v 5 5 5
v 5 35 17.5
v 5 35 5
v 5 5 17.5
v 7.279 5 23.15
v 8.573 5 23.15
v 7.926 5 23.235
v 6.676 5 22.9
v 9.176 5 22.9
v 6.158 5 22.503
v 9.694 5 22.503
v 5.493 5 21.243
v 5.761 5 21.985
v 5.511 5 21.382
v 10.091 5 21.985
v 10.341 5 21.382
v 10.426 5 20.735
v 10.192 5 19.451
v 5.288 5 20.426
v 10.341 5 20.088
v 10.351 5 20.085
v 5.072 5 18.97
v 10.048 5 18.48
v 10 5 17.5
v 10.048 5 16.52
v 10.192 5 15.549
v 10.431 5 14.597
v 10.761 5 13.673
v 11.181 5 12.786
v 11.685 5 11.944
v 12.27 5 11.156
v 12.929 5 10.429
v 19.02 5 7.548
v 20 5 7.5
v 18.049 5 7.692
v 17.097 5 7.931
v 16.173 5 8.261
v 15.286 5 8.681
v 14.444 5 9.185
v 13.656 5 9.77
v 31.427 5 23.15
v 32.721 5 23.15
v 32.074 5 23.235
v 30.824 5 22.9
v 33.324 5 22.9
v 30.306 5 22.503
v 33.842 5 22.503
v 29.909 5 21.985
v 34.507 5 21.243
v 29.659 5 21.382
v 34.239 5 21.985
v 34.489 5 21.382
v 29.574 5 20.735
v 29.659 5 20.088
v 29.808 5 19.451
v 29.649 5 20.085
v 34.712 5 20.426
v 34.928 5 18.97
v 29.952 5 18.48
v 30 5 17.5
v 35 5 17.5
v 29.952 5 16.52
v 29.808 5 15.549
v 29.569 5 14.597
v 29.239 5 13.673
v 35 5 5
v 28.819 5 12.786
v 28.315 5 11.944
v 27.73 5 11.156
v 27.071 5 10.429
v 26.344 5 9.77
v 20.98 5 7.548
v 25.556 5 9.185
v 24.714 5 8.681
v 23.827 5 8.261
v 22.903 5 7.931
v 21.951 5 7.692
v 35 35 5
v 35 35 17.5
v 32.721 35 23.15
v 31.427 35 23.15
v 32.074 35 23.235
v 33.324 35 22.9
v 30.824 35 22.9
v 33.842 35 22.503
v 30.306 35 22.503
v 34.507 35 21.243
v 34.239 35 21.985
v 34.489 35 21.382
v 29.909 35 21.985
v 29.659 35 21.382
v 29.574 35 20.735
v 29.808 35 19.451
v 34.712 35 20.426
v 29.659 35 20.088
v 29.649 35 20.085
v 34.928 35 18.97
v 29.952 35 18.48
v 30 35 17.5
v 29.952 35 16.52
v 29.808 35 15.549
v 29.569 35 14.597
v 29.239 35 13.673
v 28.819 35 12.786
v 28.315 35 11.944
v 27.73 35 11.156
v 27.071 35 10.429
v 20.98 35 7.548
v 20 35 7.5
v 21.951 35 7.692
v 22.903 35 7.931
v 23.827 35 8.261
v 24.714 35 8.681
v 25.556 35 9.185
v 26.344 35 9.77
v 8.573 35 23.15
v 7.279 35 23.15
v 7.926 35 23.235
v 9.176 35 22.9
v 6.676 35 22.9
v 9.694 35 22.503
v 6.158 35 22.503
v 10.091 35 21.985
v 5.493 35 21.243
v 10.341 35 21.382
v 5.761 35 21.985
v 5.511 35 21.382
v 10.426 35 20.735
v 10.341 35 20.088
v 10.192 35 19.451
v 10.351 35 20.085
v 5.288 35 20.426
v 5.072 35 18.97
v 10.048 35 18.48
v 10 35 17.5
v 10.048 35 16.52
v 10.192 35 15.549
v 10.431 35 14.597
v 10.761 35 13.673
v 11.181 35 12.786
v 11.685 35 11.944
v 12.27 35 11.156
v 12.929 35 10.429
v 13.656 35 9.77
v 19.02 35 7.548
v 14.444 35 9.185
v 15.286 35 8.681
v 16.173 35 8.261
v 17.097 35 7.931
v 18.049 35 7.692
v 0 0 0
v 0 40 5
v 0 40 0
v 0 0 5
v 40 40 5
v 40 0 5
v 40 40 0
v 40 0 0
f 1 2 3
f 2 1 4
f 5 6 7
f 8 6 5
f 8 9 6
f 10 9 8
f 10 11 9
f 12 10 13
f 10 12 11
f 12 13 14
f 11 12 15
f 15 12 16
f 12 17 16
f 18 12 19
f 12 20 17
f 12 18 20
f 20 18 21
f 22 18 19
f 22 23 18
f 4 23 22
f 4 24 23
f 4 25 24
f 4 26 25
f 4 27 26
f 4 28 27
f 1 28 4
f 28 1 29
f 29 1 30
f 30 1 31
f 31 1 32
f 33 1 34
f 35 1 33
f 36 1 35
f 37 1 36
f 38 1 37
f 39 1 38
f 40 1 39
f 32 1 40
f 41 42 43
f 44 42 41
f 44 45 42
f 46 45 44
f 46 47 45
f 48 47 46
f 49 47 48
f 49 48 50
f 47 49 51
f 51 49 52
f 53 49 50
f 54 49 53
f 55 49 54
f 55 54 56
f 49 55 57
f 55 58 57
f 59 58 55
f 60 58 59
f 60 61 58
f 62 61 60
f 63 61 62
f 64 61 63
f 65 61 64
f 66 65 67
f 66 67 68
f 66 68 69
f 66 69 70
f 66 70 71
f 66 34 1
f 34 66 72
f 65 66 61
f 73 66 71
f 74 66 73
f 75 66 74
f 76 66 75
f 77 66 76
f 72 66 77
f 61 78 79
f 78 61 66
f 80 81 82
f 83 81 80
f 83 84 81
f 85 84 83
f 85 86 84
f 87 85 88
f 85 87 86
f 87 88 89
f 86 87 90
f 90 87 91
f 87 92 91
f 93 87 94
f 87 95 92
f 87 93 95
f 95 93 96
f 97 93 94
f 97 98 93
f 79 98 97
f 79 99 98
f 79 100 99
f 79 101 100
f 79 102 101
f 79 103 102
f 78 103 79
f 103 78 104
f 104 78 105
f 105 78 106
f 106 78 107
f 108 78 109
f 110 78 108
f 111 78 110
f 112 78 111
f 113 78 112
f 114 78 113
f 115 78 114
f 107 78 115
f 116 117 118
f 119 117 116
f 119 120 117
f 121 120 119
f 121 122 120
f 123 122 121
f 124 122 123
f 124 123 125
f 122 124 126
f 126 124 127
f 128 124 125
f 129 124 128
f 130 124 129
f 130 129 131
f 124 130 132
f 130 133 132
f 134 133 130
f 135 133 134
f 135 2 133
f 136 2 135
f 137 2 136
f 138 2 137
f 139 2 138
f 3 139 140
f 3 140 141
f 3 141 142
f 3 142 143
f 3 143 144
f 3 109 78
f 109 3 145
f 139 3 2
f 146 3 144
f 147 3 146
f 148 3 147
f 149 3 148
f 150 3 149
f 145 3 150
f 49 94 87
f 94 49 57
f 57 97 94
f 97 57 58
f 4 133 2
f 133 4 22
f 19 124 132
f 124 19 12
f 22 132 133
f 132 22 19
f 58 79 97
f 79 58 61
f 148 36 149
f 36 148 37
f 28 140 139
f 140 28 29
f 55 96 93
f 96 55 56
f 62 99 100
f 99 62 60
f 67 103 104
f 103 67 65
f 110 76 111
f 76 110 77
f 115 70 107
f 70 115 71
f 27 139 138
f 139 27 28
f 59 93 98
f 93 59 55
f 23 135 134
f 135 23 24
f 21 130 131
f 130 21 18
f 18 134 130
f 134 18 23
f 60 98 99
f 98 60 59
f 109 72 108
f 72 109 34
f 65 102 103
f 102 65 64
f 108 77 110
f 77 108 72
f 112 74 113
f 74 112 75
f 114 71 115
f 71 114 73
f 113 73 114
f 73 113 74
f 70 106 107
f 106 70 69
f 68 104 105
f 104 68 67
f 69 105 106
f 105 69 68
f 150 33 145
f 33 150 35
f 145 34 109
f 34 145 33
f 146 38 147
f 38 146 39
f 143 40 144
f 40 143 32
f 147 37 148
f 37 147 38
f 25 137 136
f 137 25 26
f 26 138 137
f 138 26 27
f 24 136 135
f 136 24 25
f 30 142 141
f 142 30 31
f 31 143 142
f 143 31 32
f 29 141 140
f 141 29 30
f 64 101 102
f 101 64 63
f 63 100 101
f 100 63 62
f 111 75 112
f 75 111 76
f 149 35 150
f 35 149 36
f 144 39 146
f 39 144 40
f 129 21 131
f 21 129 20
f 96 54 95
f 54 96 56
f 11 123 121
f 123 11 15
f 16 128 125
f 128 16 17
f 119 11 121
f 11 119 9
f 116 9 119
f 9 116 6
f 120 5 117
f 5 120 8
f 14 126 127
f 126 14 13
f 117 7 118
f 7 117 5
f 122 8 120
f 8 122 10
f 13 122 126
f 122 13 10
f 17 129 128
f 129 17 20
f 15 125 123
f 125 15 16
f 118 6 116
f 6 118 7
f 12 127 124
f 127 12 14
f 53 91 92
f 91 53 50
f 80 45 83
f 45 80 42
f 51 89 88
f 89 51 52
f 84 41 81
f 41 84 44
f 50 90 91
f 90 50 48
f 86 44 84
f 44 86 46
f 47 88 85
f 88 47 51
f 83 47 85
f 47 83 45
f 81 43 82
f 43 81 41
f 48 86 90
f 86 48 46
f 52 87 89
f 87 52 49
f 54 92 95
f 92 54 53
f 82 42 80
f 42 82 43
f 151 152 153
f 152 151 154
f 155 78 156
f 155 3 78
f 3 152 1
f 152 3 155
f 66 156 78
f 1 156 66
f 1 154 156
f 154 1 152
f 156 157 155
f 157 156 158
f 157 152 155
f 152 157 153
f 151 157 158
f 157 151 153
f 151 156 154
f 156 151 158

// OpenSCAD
// Generated by SolidPython 1.1.3 on 2025-06-22 16:38:17
$fn = 64;


union() {
	cube(size = [40, 40, 5]);
	translate(v = [0, 0, 17.5000000000]) {
		translate(v = [20.0000000000, 35.0000000000, 0]) {
			rotate(a = [90, 0, 0]) {
				union() {
					difference() {
						union() {
							translate(v = [-15, -15, 0]) {
								cube(size = [30, 15.0000000000, 30]);
							}
							cylinder(h = 30, r = 15.0000000000);
						}
						translate(v = [0, 0, -0.1000000000]) {
							cylinder(h = 30.2000000000, r = 10);
						}
						translate(v = [0, 0, -0.1000000000]) {
							linear_extrude(height = 30.2000000000) {
								polygon(points = [[0, 0], [96.59258262890683, 25.881904510252074], [-96.59258262890683, 25.881904510252102], [0, 0]]);
							}
						}
					}
					union() {
						translate(v = [-12.074072828613353, 3.235238063781513, 0]) {
							cylinder($fn = 24, h = 30, r = 2.5000000000);
						}
						translate(v = [12.074072828613353, 3.235238063781513, 0]) {
							cylinder($fn = 24, h = 30, r = 2.5000000000);
						}
					}
				}
			}
		}
	}
}
/***********************************************
*********      SolidPython code:      **********
************************************************
 
import numpy as np
from solid import *
from solid.utils import *
import os

folder = os.path.basename(os.path.dirname(__file__))

z = 0.1
z2 = 0.2
m = 2

t = translate
tx = lambda e, x: t([x, 0, 0])(e)
ty = lambda e, x: t([0, x, 0])(e)
tz = lambda e, x: t([0, 0, x])(e)
txy = lambda e, x, y: t([x, y, 0])(e)

r = rotate
rx = lambda e, x: r([x, 0, 0])(e)
ry = lambda e, x: r([0, x, 0])(e)
rz = lambda e, x: r([0, 0, x])(e)

sc = lambda e, x: scale([x, x, x])(e)
sx = lambda e, x: scale([x, 1, 1])(e)
sy = lambda e, x: scale([1, x, 1])(e)
sxy = lambda e, x: scale([x, x, 1])(e)
sz = lambda e, x: scale([1, 1, x])(e)

cos = np.cos
sin = np.sin
pi = np.pi
save = lambda m, n: scad_render_to_file(m, n, file_header="$fn = 64;")


# Parameters
w_fan = 140 + m  # Width of fan
h_fan = 140 + m  # Height of fan
d_fan = 24 + m  # Depth of fan
r_fan = 134 / 2  # Radius
ox_fan_hole = 7 + m  # Offset x of fan screw hole
oy_fan_hole = 7 + m  # Offset y of fan screw hole
r_fan_hole = 2.5  # Radius of fan screw hole
re_fan_hole = 13  # Extra radius of fan screw hole
d_fan_hole = 5  # Depth of fan screw hole

x_ihose = 0.15 * w_fan  # Offset x of hose input connector
y_ihose = 0.50 * h_fan  # Offset y of hose input connector
x_ohose = 0.25 * w_fan  # Offset x of hose output connector
y_ohose = 0.40 * w_fan / 2  # Offset y of hose output connector
r_hose = 13  # Radius of hose connector
m_hose = 3  # Margin of hose connector
d_hose = 30  # Depth of hose connector

h_adapter = 2  # Height of adapter
w_adapter = 120  # Width of adapter attachment
d_adapter = 3  # Depth of adapter attachment
wd_adapter = 3  # Wall depth of adapter attachment

w_wall_mount = (r_hose - m_hose) * 2 + 5 * 4  # Width of wall mount
h_wall_mount = w_wall_mount  # Height of wall mount


def create_fan_box():
    d = w_fan / 2 - d_fan / 2
    fan_box = cube([w_fan, h_fan, d])
    fan = sphere(r=r_fan)
    fan = txy(fan, w_fan / 2, h_fan / 2)
    fan = tz(fan, -d_fan / 2)

    hole = cylinder(r=re_fan_hole, h=d + z2)
    hole = tz(hole, d_fan_hole)
    hole += cylinder(r=r_fan_hole, h=d + z2)
    ox, oy = ox_fan_hole, oy_fan_hole
    holes = txy(hole, ox, oy)
    holes += txy(hole, w_fan - ox, oy)
    holes += txy(hole, ox, h_fan - oy)
    holes += txy(hole, w_fan - ox, h_fan - oy)
    holes = tz(holes, -z)

    return fan_box - fan - holes


def create_fan_box_input():
    fan_box = create_fan_box()

    d = w_fan / 2 - d_fan / 2
    hose_input = cylinder(r=r_hose, h=d_hose)
    hose_input = txy(hose_input, x_ihose, y_ihose)
    hose_input = tz(hose_input, d)
    hose_input_hole = cylinder(r=r_hose - m_hose, h=d + d_hose + z2)
    hose_input_hole = txy(hose_input_hole, x_ihose, y_ihose)
    hose_input_hole = tz(hose_input_hole, -z)

    return fan_box + hose_input - hose_input_hole


def create_fan_box_output():
    fan_box = create_fan_box()

    d = w_fan / 2 - d_fan / 2
    hose_output = cylinder(r=r_hose, h=d_hose)
    hose_output = rx(hose_output, 90)
    hose_output = tx(hose_output, x_ohose)
    hose_output = tz(hose_output, y_ohose)
    hose_output_hole = cylinder(r=r_hose - m_hose, h=h_fan + d_hose + z2)
    hose_output_hole = rx(hose_output_hole, 90)
    hose_output_hole = txy(hose_output_hole, x_ohose, h_fan / 2)
    hose_output_hole = tz(hose_output_hole, y_ohose)

    return fan_box + hose_output - hose_output_hole


def create_litter_box_input_clamps():
    m = 6  # Margin

    clamp_hole = cube([m + z, m_hose + d_adapter + wd_adapter, h_adapter + z2])
    clamp_hole = txy(clamp_hole, -m - z, m)
    clamp_hole = tz(clamp_hole, -z)

    input_clamp = cube([m * 2.5, m_hose + d_adapter + wd_adapter + m * 2, h_adapter])
    input_clamp = tx(input_clamp, -m)
    input_clamp -= clamp_hole
    input_clamp = ty(input_clamp, -m_hose - wd_adapter)

    input_clamps = input_clamp + tz(tx(ry(input_clamp, 180), m * 4), h_adapter)

    return input_clamps


def create_litter_box_hose_input():
    m = 5  # Margin

    # The input hole for the air flow
    airflow_hole = cube(
        [w_adapter, d_adapter + wd_adapter + m * 3 + z2, h_adapter + z2]
    )
    airflow_hole = ty(airflow_hole, -m - z)
    airflow_hole = tz(airflow_hole, -z)

    # Shape of the rounded cat litter box
    r = 1000  # Radius of cat litter box
    indent = 2  # Indent of the cat litter box
    litter_box_shape = cylinder(r=r, h=r_hose * 2, segments=512 * r / 1000)
    litter_box_shape = txy(litter_box_shape, w_adapter / 2, r - indent)
    litter_box_shape = tz(litter_box_shape, -r_hose)

    # Hose input connector
    l_hose = w_adapter + m * 2 + d_hose
    hose_input = cylinder(r=r_hose, h=l_hose)
    hose_input += sphere(r=r_hose) - sphere(r=r_hose - m_hose)
    hose_input -= tz(cylinder(r=r_hose - m_hose, h=l_hose + z2), -z)
    hose_input = ry(hose_input, 90)
    hose_input = tz(hose_input, h_adapter / 2)
    hose_input = txy(hose_input, -m * 2, -r_hose)
    hose_input -= litter_box_shape
    hose_input -= airflow_hole
    hose_input = rx(hose_input, 90)
    hose_input = tz(hose_input, r_hose * 2)

    return hose_input


def get_pos_from_angle(angle, radius, offset_angle=0):
    """
    Get the x, y position from an angle and radius.
    :param angle: Angle in degrees.
    :param radius: Radius of the circle.
    :return: Tuple of (x, y) position.
    """
    angle_rad = np.deg2rad(angle + offset_angle)
    x = radius * cos(angle_rad)
    y = radius * sin(angle_rad)
    return x, y


def create_cake_slice(radius, angle_start, angle_end, height, offset_angle=0):
    """
    Create a cake slice shape from a circle.
    :param radius: Radius of the circle.
    :param angle_start: Start angle in degrees.
    :param angle_end: End angle in degrees.
    :param height: Height of the cake slice.
    :return: Cake slice shape.
    """
    x_start, y_start = get_pos_from_angle(angle_start, radius, offset_angle)
    x_end, y_end = get_pos_from_angle(angle_end, radius, offset_angle)

    points = [[0, 0], [x_start, y_start], [x_end, y_end], [0, 0]]

    return linear_extrude(height)(polygon(points))


def create_hose_wall_mount():
    m = 5  # Margin
    hd = h_wall_mount - m * 2  # Hose depth
    r = r_hose - m_hose  # Radius of the hose

    # The wall mount for the hose
    wall_mount = cube([w_wall_mount, h_wall_mount, m])

    # The hose input connector
    w = r * 2 + m * 2
    hose_input = cube([w, w / 2, hd])
    hose_input = txy(hose_input, -r - m, -r - m)
    hose_input += cylinder(r=w / 2, h=hd)
    hose_input -= tz(cylinder(r=r, h=hd + z2), -z)

    deg = 75  # Angle of the cake slice
    cake_slice = create_cake_slice(
        radius=100,
        angle_start=-deg,
        angle_end=deg,
        height=hd + z2,
        offset_angle=90,
    )
    cake_slice = tz(cake_slice, -z)
    hose_input -= cake_slice

    rounded_corner = cylinder(r=m / 2, h=hd, segments=24)
    x1, y1 = get_pos_from_angle(deg, r + m / 2, offset_angle=90)
    rounded_corners = txy(rounded_corner, x1, y1) + txy(rounded_corner, -x1, y1)
    hose_input += rounded_corners

    hose_input = rx(hose_input, 90)
    hose_input = txy(hose_input, w_wall_mount / 2, h_wall_mount / 2 + hd / 2)
    hose_input = tz(hose_input, r + m + m / 2)

    return wall_mount + hose_input


def create_hose_corner_mount(deg=0, fill_corner=False, round_edge=False):
    m = 5  # Margin
    r = r_hose - m_hose  # Radius of the hose
    length = d_hose

    outer_shape = rz(
        circle(r=r + m) + txy(square([r + m, r * 2 + m * 2]), -r - m, -r - m),
        deg,
    )

    inner_shape = rz(
        circle(r=r),
        deg,
    )

    bend_shell = rotate_extrude(angle=90)(tx(outer_shape, r + m))
    bend_hole = rotate_extrude(angle=90)(tx(inner_shape, r + m))
    bend = bend_shell - bend_hole

    outer_edge = linear_extrude(height=length)(outer_shape)
    inner_edge = linear_extrude(height=length + z2)(inner_shape)

    edge_a_shell = rx(outer_edge, 90)
    edge_a_shell = tx(edge_a_shell, r + m)

    edge_a_hole = rx(inner_edge, 90)
    edge_a_hole = tx(edge_a_hole, r + m)
    edge_a_hole = ty(edge_a_hole, z)

    edge_b_shell = outer_edge
    edge_b_shell = sy(edge_b_shell, -1)
    edge_b_shell = rz(edge_b_shell, 90)
    edge_b_shell = ry(edge_b_shell, -90)
    edge_b_shell = ty(edge_b_shell, r + m)

    edge_b_hole = inner_edge
    edge_b_hole = sy(edge_b_hole, -1)
    edge_b_hole = rz(edge_b_hole, 90)
    edge_b_hole = ry(edge_b_hole, -90)
    edge_b_hole = ty(edge_b_hole, r + m)
    edge_b_hole = tx(edge_b_hole, z)

    if fill_corner:
        corner_fill = cube([r * 2 + m * 2, r * 2 + m * 2, r * 2 + m * 2])
        corner_fill -= tz(txy(cube([r + m, r + m, r * 2 + m * 2 + z2]), -z, -z), -z)
        corner_fill = tz(corner_fill, -r - m)
        bend += corner_fill

    if round_edge:
        round_edge_hole = cube(
            [r * 2 + m * 2 + length + z2, r + m + z, r * 2 + m * 2 + z2]
        )
        round_edge_hole = tz(round_edge_hole, -r - m - z)
        round_edge_hole -= ry(cylinder(r=r + m, h=r * 2 + m * 2 + length + z2), 90)
        round_edge_hole = tx(round_edge_hole, -length - z)
        round_edge_hole = ty(round_edge_hole, r + m)
        bend -= round_edge_hole
        edge_b_shell -= round_edge_hole

    shell = bend + edge_a_shell + edge_b_shell
    hole = bend_hole + edge_a_hole + edge_b_hole

    return shell - hole


def create_hose_inner_corner_mount():
    return create_hose_corner_mount(deg=180, fill_corner=True)


def create_hose_outer_corner_mount():
    return create_hose_corner_mount(deg=0)


def create_hose_outward_corner_mount():
    return create_hose_corner_mount(deg=180, fill_corner=True, round_edge=True)


def create_hose_side_corner_mount():
    return create_hose_corner_mount(deg=90)


# Create the fan box input and output, and the assembly
fan_box_input = create_fan_box_input()
fan_box_output = create_fan_box_output()
assembly = rx(fan_box_input, 90) + ty(tz(rx(fan_box_output, -90), h_fan), d_fan)
save(fan_box_input, folder + ".fan-box-input.scad")
save(fan_box_output, folder + ".fan-box-output.scad")
save(assembly, folder + ".assembly.scad")

# Create the litter box hose input, and clamps for it
# The clamps are separate from the hose input because:
# 1. Removes need of supports for the hose input
# 2. Printing them flat makes them more durable
save(create_litter_box_hose_input(), folder + ".litter-box.hose-input.scad")
save(create_litter_box_input_clamps(), folder + ".litter-box.input-clamps.scad")

# Create the wall mount for the hose
save(create_hose_wall_mount(), folder + ".hose-wall-mount.scad")
save(create_hose_inner_corner_mount(), folder + ".hose-inner-corner-mount.scad")
save(create_hose_outer_corner_mount(), folder + ".hose-outer-corner-mount.scad")
save(create_hose_outward_corner_mount(), folder + ".hose-outward-corner-mount.scad")
save(create_hose_side_corner_mount(), folder + ".hose-side-corner-mount.scad")
 
 
************************************************/
